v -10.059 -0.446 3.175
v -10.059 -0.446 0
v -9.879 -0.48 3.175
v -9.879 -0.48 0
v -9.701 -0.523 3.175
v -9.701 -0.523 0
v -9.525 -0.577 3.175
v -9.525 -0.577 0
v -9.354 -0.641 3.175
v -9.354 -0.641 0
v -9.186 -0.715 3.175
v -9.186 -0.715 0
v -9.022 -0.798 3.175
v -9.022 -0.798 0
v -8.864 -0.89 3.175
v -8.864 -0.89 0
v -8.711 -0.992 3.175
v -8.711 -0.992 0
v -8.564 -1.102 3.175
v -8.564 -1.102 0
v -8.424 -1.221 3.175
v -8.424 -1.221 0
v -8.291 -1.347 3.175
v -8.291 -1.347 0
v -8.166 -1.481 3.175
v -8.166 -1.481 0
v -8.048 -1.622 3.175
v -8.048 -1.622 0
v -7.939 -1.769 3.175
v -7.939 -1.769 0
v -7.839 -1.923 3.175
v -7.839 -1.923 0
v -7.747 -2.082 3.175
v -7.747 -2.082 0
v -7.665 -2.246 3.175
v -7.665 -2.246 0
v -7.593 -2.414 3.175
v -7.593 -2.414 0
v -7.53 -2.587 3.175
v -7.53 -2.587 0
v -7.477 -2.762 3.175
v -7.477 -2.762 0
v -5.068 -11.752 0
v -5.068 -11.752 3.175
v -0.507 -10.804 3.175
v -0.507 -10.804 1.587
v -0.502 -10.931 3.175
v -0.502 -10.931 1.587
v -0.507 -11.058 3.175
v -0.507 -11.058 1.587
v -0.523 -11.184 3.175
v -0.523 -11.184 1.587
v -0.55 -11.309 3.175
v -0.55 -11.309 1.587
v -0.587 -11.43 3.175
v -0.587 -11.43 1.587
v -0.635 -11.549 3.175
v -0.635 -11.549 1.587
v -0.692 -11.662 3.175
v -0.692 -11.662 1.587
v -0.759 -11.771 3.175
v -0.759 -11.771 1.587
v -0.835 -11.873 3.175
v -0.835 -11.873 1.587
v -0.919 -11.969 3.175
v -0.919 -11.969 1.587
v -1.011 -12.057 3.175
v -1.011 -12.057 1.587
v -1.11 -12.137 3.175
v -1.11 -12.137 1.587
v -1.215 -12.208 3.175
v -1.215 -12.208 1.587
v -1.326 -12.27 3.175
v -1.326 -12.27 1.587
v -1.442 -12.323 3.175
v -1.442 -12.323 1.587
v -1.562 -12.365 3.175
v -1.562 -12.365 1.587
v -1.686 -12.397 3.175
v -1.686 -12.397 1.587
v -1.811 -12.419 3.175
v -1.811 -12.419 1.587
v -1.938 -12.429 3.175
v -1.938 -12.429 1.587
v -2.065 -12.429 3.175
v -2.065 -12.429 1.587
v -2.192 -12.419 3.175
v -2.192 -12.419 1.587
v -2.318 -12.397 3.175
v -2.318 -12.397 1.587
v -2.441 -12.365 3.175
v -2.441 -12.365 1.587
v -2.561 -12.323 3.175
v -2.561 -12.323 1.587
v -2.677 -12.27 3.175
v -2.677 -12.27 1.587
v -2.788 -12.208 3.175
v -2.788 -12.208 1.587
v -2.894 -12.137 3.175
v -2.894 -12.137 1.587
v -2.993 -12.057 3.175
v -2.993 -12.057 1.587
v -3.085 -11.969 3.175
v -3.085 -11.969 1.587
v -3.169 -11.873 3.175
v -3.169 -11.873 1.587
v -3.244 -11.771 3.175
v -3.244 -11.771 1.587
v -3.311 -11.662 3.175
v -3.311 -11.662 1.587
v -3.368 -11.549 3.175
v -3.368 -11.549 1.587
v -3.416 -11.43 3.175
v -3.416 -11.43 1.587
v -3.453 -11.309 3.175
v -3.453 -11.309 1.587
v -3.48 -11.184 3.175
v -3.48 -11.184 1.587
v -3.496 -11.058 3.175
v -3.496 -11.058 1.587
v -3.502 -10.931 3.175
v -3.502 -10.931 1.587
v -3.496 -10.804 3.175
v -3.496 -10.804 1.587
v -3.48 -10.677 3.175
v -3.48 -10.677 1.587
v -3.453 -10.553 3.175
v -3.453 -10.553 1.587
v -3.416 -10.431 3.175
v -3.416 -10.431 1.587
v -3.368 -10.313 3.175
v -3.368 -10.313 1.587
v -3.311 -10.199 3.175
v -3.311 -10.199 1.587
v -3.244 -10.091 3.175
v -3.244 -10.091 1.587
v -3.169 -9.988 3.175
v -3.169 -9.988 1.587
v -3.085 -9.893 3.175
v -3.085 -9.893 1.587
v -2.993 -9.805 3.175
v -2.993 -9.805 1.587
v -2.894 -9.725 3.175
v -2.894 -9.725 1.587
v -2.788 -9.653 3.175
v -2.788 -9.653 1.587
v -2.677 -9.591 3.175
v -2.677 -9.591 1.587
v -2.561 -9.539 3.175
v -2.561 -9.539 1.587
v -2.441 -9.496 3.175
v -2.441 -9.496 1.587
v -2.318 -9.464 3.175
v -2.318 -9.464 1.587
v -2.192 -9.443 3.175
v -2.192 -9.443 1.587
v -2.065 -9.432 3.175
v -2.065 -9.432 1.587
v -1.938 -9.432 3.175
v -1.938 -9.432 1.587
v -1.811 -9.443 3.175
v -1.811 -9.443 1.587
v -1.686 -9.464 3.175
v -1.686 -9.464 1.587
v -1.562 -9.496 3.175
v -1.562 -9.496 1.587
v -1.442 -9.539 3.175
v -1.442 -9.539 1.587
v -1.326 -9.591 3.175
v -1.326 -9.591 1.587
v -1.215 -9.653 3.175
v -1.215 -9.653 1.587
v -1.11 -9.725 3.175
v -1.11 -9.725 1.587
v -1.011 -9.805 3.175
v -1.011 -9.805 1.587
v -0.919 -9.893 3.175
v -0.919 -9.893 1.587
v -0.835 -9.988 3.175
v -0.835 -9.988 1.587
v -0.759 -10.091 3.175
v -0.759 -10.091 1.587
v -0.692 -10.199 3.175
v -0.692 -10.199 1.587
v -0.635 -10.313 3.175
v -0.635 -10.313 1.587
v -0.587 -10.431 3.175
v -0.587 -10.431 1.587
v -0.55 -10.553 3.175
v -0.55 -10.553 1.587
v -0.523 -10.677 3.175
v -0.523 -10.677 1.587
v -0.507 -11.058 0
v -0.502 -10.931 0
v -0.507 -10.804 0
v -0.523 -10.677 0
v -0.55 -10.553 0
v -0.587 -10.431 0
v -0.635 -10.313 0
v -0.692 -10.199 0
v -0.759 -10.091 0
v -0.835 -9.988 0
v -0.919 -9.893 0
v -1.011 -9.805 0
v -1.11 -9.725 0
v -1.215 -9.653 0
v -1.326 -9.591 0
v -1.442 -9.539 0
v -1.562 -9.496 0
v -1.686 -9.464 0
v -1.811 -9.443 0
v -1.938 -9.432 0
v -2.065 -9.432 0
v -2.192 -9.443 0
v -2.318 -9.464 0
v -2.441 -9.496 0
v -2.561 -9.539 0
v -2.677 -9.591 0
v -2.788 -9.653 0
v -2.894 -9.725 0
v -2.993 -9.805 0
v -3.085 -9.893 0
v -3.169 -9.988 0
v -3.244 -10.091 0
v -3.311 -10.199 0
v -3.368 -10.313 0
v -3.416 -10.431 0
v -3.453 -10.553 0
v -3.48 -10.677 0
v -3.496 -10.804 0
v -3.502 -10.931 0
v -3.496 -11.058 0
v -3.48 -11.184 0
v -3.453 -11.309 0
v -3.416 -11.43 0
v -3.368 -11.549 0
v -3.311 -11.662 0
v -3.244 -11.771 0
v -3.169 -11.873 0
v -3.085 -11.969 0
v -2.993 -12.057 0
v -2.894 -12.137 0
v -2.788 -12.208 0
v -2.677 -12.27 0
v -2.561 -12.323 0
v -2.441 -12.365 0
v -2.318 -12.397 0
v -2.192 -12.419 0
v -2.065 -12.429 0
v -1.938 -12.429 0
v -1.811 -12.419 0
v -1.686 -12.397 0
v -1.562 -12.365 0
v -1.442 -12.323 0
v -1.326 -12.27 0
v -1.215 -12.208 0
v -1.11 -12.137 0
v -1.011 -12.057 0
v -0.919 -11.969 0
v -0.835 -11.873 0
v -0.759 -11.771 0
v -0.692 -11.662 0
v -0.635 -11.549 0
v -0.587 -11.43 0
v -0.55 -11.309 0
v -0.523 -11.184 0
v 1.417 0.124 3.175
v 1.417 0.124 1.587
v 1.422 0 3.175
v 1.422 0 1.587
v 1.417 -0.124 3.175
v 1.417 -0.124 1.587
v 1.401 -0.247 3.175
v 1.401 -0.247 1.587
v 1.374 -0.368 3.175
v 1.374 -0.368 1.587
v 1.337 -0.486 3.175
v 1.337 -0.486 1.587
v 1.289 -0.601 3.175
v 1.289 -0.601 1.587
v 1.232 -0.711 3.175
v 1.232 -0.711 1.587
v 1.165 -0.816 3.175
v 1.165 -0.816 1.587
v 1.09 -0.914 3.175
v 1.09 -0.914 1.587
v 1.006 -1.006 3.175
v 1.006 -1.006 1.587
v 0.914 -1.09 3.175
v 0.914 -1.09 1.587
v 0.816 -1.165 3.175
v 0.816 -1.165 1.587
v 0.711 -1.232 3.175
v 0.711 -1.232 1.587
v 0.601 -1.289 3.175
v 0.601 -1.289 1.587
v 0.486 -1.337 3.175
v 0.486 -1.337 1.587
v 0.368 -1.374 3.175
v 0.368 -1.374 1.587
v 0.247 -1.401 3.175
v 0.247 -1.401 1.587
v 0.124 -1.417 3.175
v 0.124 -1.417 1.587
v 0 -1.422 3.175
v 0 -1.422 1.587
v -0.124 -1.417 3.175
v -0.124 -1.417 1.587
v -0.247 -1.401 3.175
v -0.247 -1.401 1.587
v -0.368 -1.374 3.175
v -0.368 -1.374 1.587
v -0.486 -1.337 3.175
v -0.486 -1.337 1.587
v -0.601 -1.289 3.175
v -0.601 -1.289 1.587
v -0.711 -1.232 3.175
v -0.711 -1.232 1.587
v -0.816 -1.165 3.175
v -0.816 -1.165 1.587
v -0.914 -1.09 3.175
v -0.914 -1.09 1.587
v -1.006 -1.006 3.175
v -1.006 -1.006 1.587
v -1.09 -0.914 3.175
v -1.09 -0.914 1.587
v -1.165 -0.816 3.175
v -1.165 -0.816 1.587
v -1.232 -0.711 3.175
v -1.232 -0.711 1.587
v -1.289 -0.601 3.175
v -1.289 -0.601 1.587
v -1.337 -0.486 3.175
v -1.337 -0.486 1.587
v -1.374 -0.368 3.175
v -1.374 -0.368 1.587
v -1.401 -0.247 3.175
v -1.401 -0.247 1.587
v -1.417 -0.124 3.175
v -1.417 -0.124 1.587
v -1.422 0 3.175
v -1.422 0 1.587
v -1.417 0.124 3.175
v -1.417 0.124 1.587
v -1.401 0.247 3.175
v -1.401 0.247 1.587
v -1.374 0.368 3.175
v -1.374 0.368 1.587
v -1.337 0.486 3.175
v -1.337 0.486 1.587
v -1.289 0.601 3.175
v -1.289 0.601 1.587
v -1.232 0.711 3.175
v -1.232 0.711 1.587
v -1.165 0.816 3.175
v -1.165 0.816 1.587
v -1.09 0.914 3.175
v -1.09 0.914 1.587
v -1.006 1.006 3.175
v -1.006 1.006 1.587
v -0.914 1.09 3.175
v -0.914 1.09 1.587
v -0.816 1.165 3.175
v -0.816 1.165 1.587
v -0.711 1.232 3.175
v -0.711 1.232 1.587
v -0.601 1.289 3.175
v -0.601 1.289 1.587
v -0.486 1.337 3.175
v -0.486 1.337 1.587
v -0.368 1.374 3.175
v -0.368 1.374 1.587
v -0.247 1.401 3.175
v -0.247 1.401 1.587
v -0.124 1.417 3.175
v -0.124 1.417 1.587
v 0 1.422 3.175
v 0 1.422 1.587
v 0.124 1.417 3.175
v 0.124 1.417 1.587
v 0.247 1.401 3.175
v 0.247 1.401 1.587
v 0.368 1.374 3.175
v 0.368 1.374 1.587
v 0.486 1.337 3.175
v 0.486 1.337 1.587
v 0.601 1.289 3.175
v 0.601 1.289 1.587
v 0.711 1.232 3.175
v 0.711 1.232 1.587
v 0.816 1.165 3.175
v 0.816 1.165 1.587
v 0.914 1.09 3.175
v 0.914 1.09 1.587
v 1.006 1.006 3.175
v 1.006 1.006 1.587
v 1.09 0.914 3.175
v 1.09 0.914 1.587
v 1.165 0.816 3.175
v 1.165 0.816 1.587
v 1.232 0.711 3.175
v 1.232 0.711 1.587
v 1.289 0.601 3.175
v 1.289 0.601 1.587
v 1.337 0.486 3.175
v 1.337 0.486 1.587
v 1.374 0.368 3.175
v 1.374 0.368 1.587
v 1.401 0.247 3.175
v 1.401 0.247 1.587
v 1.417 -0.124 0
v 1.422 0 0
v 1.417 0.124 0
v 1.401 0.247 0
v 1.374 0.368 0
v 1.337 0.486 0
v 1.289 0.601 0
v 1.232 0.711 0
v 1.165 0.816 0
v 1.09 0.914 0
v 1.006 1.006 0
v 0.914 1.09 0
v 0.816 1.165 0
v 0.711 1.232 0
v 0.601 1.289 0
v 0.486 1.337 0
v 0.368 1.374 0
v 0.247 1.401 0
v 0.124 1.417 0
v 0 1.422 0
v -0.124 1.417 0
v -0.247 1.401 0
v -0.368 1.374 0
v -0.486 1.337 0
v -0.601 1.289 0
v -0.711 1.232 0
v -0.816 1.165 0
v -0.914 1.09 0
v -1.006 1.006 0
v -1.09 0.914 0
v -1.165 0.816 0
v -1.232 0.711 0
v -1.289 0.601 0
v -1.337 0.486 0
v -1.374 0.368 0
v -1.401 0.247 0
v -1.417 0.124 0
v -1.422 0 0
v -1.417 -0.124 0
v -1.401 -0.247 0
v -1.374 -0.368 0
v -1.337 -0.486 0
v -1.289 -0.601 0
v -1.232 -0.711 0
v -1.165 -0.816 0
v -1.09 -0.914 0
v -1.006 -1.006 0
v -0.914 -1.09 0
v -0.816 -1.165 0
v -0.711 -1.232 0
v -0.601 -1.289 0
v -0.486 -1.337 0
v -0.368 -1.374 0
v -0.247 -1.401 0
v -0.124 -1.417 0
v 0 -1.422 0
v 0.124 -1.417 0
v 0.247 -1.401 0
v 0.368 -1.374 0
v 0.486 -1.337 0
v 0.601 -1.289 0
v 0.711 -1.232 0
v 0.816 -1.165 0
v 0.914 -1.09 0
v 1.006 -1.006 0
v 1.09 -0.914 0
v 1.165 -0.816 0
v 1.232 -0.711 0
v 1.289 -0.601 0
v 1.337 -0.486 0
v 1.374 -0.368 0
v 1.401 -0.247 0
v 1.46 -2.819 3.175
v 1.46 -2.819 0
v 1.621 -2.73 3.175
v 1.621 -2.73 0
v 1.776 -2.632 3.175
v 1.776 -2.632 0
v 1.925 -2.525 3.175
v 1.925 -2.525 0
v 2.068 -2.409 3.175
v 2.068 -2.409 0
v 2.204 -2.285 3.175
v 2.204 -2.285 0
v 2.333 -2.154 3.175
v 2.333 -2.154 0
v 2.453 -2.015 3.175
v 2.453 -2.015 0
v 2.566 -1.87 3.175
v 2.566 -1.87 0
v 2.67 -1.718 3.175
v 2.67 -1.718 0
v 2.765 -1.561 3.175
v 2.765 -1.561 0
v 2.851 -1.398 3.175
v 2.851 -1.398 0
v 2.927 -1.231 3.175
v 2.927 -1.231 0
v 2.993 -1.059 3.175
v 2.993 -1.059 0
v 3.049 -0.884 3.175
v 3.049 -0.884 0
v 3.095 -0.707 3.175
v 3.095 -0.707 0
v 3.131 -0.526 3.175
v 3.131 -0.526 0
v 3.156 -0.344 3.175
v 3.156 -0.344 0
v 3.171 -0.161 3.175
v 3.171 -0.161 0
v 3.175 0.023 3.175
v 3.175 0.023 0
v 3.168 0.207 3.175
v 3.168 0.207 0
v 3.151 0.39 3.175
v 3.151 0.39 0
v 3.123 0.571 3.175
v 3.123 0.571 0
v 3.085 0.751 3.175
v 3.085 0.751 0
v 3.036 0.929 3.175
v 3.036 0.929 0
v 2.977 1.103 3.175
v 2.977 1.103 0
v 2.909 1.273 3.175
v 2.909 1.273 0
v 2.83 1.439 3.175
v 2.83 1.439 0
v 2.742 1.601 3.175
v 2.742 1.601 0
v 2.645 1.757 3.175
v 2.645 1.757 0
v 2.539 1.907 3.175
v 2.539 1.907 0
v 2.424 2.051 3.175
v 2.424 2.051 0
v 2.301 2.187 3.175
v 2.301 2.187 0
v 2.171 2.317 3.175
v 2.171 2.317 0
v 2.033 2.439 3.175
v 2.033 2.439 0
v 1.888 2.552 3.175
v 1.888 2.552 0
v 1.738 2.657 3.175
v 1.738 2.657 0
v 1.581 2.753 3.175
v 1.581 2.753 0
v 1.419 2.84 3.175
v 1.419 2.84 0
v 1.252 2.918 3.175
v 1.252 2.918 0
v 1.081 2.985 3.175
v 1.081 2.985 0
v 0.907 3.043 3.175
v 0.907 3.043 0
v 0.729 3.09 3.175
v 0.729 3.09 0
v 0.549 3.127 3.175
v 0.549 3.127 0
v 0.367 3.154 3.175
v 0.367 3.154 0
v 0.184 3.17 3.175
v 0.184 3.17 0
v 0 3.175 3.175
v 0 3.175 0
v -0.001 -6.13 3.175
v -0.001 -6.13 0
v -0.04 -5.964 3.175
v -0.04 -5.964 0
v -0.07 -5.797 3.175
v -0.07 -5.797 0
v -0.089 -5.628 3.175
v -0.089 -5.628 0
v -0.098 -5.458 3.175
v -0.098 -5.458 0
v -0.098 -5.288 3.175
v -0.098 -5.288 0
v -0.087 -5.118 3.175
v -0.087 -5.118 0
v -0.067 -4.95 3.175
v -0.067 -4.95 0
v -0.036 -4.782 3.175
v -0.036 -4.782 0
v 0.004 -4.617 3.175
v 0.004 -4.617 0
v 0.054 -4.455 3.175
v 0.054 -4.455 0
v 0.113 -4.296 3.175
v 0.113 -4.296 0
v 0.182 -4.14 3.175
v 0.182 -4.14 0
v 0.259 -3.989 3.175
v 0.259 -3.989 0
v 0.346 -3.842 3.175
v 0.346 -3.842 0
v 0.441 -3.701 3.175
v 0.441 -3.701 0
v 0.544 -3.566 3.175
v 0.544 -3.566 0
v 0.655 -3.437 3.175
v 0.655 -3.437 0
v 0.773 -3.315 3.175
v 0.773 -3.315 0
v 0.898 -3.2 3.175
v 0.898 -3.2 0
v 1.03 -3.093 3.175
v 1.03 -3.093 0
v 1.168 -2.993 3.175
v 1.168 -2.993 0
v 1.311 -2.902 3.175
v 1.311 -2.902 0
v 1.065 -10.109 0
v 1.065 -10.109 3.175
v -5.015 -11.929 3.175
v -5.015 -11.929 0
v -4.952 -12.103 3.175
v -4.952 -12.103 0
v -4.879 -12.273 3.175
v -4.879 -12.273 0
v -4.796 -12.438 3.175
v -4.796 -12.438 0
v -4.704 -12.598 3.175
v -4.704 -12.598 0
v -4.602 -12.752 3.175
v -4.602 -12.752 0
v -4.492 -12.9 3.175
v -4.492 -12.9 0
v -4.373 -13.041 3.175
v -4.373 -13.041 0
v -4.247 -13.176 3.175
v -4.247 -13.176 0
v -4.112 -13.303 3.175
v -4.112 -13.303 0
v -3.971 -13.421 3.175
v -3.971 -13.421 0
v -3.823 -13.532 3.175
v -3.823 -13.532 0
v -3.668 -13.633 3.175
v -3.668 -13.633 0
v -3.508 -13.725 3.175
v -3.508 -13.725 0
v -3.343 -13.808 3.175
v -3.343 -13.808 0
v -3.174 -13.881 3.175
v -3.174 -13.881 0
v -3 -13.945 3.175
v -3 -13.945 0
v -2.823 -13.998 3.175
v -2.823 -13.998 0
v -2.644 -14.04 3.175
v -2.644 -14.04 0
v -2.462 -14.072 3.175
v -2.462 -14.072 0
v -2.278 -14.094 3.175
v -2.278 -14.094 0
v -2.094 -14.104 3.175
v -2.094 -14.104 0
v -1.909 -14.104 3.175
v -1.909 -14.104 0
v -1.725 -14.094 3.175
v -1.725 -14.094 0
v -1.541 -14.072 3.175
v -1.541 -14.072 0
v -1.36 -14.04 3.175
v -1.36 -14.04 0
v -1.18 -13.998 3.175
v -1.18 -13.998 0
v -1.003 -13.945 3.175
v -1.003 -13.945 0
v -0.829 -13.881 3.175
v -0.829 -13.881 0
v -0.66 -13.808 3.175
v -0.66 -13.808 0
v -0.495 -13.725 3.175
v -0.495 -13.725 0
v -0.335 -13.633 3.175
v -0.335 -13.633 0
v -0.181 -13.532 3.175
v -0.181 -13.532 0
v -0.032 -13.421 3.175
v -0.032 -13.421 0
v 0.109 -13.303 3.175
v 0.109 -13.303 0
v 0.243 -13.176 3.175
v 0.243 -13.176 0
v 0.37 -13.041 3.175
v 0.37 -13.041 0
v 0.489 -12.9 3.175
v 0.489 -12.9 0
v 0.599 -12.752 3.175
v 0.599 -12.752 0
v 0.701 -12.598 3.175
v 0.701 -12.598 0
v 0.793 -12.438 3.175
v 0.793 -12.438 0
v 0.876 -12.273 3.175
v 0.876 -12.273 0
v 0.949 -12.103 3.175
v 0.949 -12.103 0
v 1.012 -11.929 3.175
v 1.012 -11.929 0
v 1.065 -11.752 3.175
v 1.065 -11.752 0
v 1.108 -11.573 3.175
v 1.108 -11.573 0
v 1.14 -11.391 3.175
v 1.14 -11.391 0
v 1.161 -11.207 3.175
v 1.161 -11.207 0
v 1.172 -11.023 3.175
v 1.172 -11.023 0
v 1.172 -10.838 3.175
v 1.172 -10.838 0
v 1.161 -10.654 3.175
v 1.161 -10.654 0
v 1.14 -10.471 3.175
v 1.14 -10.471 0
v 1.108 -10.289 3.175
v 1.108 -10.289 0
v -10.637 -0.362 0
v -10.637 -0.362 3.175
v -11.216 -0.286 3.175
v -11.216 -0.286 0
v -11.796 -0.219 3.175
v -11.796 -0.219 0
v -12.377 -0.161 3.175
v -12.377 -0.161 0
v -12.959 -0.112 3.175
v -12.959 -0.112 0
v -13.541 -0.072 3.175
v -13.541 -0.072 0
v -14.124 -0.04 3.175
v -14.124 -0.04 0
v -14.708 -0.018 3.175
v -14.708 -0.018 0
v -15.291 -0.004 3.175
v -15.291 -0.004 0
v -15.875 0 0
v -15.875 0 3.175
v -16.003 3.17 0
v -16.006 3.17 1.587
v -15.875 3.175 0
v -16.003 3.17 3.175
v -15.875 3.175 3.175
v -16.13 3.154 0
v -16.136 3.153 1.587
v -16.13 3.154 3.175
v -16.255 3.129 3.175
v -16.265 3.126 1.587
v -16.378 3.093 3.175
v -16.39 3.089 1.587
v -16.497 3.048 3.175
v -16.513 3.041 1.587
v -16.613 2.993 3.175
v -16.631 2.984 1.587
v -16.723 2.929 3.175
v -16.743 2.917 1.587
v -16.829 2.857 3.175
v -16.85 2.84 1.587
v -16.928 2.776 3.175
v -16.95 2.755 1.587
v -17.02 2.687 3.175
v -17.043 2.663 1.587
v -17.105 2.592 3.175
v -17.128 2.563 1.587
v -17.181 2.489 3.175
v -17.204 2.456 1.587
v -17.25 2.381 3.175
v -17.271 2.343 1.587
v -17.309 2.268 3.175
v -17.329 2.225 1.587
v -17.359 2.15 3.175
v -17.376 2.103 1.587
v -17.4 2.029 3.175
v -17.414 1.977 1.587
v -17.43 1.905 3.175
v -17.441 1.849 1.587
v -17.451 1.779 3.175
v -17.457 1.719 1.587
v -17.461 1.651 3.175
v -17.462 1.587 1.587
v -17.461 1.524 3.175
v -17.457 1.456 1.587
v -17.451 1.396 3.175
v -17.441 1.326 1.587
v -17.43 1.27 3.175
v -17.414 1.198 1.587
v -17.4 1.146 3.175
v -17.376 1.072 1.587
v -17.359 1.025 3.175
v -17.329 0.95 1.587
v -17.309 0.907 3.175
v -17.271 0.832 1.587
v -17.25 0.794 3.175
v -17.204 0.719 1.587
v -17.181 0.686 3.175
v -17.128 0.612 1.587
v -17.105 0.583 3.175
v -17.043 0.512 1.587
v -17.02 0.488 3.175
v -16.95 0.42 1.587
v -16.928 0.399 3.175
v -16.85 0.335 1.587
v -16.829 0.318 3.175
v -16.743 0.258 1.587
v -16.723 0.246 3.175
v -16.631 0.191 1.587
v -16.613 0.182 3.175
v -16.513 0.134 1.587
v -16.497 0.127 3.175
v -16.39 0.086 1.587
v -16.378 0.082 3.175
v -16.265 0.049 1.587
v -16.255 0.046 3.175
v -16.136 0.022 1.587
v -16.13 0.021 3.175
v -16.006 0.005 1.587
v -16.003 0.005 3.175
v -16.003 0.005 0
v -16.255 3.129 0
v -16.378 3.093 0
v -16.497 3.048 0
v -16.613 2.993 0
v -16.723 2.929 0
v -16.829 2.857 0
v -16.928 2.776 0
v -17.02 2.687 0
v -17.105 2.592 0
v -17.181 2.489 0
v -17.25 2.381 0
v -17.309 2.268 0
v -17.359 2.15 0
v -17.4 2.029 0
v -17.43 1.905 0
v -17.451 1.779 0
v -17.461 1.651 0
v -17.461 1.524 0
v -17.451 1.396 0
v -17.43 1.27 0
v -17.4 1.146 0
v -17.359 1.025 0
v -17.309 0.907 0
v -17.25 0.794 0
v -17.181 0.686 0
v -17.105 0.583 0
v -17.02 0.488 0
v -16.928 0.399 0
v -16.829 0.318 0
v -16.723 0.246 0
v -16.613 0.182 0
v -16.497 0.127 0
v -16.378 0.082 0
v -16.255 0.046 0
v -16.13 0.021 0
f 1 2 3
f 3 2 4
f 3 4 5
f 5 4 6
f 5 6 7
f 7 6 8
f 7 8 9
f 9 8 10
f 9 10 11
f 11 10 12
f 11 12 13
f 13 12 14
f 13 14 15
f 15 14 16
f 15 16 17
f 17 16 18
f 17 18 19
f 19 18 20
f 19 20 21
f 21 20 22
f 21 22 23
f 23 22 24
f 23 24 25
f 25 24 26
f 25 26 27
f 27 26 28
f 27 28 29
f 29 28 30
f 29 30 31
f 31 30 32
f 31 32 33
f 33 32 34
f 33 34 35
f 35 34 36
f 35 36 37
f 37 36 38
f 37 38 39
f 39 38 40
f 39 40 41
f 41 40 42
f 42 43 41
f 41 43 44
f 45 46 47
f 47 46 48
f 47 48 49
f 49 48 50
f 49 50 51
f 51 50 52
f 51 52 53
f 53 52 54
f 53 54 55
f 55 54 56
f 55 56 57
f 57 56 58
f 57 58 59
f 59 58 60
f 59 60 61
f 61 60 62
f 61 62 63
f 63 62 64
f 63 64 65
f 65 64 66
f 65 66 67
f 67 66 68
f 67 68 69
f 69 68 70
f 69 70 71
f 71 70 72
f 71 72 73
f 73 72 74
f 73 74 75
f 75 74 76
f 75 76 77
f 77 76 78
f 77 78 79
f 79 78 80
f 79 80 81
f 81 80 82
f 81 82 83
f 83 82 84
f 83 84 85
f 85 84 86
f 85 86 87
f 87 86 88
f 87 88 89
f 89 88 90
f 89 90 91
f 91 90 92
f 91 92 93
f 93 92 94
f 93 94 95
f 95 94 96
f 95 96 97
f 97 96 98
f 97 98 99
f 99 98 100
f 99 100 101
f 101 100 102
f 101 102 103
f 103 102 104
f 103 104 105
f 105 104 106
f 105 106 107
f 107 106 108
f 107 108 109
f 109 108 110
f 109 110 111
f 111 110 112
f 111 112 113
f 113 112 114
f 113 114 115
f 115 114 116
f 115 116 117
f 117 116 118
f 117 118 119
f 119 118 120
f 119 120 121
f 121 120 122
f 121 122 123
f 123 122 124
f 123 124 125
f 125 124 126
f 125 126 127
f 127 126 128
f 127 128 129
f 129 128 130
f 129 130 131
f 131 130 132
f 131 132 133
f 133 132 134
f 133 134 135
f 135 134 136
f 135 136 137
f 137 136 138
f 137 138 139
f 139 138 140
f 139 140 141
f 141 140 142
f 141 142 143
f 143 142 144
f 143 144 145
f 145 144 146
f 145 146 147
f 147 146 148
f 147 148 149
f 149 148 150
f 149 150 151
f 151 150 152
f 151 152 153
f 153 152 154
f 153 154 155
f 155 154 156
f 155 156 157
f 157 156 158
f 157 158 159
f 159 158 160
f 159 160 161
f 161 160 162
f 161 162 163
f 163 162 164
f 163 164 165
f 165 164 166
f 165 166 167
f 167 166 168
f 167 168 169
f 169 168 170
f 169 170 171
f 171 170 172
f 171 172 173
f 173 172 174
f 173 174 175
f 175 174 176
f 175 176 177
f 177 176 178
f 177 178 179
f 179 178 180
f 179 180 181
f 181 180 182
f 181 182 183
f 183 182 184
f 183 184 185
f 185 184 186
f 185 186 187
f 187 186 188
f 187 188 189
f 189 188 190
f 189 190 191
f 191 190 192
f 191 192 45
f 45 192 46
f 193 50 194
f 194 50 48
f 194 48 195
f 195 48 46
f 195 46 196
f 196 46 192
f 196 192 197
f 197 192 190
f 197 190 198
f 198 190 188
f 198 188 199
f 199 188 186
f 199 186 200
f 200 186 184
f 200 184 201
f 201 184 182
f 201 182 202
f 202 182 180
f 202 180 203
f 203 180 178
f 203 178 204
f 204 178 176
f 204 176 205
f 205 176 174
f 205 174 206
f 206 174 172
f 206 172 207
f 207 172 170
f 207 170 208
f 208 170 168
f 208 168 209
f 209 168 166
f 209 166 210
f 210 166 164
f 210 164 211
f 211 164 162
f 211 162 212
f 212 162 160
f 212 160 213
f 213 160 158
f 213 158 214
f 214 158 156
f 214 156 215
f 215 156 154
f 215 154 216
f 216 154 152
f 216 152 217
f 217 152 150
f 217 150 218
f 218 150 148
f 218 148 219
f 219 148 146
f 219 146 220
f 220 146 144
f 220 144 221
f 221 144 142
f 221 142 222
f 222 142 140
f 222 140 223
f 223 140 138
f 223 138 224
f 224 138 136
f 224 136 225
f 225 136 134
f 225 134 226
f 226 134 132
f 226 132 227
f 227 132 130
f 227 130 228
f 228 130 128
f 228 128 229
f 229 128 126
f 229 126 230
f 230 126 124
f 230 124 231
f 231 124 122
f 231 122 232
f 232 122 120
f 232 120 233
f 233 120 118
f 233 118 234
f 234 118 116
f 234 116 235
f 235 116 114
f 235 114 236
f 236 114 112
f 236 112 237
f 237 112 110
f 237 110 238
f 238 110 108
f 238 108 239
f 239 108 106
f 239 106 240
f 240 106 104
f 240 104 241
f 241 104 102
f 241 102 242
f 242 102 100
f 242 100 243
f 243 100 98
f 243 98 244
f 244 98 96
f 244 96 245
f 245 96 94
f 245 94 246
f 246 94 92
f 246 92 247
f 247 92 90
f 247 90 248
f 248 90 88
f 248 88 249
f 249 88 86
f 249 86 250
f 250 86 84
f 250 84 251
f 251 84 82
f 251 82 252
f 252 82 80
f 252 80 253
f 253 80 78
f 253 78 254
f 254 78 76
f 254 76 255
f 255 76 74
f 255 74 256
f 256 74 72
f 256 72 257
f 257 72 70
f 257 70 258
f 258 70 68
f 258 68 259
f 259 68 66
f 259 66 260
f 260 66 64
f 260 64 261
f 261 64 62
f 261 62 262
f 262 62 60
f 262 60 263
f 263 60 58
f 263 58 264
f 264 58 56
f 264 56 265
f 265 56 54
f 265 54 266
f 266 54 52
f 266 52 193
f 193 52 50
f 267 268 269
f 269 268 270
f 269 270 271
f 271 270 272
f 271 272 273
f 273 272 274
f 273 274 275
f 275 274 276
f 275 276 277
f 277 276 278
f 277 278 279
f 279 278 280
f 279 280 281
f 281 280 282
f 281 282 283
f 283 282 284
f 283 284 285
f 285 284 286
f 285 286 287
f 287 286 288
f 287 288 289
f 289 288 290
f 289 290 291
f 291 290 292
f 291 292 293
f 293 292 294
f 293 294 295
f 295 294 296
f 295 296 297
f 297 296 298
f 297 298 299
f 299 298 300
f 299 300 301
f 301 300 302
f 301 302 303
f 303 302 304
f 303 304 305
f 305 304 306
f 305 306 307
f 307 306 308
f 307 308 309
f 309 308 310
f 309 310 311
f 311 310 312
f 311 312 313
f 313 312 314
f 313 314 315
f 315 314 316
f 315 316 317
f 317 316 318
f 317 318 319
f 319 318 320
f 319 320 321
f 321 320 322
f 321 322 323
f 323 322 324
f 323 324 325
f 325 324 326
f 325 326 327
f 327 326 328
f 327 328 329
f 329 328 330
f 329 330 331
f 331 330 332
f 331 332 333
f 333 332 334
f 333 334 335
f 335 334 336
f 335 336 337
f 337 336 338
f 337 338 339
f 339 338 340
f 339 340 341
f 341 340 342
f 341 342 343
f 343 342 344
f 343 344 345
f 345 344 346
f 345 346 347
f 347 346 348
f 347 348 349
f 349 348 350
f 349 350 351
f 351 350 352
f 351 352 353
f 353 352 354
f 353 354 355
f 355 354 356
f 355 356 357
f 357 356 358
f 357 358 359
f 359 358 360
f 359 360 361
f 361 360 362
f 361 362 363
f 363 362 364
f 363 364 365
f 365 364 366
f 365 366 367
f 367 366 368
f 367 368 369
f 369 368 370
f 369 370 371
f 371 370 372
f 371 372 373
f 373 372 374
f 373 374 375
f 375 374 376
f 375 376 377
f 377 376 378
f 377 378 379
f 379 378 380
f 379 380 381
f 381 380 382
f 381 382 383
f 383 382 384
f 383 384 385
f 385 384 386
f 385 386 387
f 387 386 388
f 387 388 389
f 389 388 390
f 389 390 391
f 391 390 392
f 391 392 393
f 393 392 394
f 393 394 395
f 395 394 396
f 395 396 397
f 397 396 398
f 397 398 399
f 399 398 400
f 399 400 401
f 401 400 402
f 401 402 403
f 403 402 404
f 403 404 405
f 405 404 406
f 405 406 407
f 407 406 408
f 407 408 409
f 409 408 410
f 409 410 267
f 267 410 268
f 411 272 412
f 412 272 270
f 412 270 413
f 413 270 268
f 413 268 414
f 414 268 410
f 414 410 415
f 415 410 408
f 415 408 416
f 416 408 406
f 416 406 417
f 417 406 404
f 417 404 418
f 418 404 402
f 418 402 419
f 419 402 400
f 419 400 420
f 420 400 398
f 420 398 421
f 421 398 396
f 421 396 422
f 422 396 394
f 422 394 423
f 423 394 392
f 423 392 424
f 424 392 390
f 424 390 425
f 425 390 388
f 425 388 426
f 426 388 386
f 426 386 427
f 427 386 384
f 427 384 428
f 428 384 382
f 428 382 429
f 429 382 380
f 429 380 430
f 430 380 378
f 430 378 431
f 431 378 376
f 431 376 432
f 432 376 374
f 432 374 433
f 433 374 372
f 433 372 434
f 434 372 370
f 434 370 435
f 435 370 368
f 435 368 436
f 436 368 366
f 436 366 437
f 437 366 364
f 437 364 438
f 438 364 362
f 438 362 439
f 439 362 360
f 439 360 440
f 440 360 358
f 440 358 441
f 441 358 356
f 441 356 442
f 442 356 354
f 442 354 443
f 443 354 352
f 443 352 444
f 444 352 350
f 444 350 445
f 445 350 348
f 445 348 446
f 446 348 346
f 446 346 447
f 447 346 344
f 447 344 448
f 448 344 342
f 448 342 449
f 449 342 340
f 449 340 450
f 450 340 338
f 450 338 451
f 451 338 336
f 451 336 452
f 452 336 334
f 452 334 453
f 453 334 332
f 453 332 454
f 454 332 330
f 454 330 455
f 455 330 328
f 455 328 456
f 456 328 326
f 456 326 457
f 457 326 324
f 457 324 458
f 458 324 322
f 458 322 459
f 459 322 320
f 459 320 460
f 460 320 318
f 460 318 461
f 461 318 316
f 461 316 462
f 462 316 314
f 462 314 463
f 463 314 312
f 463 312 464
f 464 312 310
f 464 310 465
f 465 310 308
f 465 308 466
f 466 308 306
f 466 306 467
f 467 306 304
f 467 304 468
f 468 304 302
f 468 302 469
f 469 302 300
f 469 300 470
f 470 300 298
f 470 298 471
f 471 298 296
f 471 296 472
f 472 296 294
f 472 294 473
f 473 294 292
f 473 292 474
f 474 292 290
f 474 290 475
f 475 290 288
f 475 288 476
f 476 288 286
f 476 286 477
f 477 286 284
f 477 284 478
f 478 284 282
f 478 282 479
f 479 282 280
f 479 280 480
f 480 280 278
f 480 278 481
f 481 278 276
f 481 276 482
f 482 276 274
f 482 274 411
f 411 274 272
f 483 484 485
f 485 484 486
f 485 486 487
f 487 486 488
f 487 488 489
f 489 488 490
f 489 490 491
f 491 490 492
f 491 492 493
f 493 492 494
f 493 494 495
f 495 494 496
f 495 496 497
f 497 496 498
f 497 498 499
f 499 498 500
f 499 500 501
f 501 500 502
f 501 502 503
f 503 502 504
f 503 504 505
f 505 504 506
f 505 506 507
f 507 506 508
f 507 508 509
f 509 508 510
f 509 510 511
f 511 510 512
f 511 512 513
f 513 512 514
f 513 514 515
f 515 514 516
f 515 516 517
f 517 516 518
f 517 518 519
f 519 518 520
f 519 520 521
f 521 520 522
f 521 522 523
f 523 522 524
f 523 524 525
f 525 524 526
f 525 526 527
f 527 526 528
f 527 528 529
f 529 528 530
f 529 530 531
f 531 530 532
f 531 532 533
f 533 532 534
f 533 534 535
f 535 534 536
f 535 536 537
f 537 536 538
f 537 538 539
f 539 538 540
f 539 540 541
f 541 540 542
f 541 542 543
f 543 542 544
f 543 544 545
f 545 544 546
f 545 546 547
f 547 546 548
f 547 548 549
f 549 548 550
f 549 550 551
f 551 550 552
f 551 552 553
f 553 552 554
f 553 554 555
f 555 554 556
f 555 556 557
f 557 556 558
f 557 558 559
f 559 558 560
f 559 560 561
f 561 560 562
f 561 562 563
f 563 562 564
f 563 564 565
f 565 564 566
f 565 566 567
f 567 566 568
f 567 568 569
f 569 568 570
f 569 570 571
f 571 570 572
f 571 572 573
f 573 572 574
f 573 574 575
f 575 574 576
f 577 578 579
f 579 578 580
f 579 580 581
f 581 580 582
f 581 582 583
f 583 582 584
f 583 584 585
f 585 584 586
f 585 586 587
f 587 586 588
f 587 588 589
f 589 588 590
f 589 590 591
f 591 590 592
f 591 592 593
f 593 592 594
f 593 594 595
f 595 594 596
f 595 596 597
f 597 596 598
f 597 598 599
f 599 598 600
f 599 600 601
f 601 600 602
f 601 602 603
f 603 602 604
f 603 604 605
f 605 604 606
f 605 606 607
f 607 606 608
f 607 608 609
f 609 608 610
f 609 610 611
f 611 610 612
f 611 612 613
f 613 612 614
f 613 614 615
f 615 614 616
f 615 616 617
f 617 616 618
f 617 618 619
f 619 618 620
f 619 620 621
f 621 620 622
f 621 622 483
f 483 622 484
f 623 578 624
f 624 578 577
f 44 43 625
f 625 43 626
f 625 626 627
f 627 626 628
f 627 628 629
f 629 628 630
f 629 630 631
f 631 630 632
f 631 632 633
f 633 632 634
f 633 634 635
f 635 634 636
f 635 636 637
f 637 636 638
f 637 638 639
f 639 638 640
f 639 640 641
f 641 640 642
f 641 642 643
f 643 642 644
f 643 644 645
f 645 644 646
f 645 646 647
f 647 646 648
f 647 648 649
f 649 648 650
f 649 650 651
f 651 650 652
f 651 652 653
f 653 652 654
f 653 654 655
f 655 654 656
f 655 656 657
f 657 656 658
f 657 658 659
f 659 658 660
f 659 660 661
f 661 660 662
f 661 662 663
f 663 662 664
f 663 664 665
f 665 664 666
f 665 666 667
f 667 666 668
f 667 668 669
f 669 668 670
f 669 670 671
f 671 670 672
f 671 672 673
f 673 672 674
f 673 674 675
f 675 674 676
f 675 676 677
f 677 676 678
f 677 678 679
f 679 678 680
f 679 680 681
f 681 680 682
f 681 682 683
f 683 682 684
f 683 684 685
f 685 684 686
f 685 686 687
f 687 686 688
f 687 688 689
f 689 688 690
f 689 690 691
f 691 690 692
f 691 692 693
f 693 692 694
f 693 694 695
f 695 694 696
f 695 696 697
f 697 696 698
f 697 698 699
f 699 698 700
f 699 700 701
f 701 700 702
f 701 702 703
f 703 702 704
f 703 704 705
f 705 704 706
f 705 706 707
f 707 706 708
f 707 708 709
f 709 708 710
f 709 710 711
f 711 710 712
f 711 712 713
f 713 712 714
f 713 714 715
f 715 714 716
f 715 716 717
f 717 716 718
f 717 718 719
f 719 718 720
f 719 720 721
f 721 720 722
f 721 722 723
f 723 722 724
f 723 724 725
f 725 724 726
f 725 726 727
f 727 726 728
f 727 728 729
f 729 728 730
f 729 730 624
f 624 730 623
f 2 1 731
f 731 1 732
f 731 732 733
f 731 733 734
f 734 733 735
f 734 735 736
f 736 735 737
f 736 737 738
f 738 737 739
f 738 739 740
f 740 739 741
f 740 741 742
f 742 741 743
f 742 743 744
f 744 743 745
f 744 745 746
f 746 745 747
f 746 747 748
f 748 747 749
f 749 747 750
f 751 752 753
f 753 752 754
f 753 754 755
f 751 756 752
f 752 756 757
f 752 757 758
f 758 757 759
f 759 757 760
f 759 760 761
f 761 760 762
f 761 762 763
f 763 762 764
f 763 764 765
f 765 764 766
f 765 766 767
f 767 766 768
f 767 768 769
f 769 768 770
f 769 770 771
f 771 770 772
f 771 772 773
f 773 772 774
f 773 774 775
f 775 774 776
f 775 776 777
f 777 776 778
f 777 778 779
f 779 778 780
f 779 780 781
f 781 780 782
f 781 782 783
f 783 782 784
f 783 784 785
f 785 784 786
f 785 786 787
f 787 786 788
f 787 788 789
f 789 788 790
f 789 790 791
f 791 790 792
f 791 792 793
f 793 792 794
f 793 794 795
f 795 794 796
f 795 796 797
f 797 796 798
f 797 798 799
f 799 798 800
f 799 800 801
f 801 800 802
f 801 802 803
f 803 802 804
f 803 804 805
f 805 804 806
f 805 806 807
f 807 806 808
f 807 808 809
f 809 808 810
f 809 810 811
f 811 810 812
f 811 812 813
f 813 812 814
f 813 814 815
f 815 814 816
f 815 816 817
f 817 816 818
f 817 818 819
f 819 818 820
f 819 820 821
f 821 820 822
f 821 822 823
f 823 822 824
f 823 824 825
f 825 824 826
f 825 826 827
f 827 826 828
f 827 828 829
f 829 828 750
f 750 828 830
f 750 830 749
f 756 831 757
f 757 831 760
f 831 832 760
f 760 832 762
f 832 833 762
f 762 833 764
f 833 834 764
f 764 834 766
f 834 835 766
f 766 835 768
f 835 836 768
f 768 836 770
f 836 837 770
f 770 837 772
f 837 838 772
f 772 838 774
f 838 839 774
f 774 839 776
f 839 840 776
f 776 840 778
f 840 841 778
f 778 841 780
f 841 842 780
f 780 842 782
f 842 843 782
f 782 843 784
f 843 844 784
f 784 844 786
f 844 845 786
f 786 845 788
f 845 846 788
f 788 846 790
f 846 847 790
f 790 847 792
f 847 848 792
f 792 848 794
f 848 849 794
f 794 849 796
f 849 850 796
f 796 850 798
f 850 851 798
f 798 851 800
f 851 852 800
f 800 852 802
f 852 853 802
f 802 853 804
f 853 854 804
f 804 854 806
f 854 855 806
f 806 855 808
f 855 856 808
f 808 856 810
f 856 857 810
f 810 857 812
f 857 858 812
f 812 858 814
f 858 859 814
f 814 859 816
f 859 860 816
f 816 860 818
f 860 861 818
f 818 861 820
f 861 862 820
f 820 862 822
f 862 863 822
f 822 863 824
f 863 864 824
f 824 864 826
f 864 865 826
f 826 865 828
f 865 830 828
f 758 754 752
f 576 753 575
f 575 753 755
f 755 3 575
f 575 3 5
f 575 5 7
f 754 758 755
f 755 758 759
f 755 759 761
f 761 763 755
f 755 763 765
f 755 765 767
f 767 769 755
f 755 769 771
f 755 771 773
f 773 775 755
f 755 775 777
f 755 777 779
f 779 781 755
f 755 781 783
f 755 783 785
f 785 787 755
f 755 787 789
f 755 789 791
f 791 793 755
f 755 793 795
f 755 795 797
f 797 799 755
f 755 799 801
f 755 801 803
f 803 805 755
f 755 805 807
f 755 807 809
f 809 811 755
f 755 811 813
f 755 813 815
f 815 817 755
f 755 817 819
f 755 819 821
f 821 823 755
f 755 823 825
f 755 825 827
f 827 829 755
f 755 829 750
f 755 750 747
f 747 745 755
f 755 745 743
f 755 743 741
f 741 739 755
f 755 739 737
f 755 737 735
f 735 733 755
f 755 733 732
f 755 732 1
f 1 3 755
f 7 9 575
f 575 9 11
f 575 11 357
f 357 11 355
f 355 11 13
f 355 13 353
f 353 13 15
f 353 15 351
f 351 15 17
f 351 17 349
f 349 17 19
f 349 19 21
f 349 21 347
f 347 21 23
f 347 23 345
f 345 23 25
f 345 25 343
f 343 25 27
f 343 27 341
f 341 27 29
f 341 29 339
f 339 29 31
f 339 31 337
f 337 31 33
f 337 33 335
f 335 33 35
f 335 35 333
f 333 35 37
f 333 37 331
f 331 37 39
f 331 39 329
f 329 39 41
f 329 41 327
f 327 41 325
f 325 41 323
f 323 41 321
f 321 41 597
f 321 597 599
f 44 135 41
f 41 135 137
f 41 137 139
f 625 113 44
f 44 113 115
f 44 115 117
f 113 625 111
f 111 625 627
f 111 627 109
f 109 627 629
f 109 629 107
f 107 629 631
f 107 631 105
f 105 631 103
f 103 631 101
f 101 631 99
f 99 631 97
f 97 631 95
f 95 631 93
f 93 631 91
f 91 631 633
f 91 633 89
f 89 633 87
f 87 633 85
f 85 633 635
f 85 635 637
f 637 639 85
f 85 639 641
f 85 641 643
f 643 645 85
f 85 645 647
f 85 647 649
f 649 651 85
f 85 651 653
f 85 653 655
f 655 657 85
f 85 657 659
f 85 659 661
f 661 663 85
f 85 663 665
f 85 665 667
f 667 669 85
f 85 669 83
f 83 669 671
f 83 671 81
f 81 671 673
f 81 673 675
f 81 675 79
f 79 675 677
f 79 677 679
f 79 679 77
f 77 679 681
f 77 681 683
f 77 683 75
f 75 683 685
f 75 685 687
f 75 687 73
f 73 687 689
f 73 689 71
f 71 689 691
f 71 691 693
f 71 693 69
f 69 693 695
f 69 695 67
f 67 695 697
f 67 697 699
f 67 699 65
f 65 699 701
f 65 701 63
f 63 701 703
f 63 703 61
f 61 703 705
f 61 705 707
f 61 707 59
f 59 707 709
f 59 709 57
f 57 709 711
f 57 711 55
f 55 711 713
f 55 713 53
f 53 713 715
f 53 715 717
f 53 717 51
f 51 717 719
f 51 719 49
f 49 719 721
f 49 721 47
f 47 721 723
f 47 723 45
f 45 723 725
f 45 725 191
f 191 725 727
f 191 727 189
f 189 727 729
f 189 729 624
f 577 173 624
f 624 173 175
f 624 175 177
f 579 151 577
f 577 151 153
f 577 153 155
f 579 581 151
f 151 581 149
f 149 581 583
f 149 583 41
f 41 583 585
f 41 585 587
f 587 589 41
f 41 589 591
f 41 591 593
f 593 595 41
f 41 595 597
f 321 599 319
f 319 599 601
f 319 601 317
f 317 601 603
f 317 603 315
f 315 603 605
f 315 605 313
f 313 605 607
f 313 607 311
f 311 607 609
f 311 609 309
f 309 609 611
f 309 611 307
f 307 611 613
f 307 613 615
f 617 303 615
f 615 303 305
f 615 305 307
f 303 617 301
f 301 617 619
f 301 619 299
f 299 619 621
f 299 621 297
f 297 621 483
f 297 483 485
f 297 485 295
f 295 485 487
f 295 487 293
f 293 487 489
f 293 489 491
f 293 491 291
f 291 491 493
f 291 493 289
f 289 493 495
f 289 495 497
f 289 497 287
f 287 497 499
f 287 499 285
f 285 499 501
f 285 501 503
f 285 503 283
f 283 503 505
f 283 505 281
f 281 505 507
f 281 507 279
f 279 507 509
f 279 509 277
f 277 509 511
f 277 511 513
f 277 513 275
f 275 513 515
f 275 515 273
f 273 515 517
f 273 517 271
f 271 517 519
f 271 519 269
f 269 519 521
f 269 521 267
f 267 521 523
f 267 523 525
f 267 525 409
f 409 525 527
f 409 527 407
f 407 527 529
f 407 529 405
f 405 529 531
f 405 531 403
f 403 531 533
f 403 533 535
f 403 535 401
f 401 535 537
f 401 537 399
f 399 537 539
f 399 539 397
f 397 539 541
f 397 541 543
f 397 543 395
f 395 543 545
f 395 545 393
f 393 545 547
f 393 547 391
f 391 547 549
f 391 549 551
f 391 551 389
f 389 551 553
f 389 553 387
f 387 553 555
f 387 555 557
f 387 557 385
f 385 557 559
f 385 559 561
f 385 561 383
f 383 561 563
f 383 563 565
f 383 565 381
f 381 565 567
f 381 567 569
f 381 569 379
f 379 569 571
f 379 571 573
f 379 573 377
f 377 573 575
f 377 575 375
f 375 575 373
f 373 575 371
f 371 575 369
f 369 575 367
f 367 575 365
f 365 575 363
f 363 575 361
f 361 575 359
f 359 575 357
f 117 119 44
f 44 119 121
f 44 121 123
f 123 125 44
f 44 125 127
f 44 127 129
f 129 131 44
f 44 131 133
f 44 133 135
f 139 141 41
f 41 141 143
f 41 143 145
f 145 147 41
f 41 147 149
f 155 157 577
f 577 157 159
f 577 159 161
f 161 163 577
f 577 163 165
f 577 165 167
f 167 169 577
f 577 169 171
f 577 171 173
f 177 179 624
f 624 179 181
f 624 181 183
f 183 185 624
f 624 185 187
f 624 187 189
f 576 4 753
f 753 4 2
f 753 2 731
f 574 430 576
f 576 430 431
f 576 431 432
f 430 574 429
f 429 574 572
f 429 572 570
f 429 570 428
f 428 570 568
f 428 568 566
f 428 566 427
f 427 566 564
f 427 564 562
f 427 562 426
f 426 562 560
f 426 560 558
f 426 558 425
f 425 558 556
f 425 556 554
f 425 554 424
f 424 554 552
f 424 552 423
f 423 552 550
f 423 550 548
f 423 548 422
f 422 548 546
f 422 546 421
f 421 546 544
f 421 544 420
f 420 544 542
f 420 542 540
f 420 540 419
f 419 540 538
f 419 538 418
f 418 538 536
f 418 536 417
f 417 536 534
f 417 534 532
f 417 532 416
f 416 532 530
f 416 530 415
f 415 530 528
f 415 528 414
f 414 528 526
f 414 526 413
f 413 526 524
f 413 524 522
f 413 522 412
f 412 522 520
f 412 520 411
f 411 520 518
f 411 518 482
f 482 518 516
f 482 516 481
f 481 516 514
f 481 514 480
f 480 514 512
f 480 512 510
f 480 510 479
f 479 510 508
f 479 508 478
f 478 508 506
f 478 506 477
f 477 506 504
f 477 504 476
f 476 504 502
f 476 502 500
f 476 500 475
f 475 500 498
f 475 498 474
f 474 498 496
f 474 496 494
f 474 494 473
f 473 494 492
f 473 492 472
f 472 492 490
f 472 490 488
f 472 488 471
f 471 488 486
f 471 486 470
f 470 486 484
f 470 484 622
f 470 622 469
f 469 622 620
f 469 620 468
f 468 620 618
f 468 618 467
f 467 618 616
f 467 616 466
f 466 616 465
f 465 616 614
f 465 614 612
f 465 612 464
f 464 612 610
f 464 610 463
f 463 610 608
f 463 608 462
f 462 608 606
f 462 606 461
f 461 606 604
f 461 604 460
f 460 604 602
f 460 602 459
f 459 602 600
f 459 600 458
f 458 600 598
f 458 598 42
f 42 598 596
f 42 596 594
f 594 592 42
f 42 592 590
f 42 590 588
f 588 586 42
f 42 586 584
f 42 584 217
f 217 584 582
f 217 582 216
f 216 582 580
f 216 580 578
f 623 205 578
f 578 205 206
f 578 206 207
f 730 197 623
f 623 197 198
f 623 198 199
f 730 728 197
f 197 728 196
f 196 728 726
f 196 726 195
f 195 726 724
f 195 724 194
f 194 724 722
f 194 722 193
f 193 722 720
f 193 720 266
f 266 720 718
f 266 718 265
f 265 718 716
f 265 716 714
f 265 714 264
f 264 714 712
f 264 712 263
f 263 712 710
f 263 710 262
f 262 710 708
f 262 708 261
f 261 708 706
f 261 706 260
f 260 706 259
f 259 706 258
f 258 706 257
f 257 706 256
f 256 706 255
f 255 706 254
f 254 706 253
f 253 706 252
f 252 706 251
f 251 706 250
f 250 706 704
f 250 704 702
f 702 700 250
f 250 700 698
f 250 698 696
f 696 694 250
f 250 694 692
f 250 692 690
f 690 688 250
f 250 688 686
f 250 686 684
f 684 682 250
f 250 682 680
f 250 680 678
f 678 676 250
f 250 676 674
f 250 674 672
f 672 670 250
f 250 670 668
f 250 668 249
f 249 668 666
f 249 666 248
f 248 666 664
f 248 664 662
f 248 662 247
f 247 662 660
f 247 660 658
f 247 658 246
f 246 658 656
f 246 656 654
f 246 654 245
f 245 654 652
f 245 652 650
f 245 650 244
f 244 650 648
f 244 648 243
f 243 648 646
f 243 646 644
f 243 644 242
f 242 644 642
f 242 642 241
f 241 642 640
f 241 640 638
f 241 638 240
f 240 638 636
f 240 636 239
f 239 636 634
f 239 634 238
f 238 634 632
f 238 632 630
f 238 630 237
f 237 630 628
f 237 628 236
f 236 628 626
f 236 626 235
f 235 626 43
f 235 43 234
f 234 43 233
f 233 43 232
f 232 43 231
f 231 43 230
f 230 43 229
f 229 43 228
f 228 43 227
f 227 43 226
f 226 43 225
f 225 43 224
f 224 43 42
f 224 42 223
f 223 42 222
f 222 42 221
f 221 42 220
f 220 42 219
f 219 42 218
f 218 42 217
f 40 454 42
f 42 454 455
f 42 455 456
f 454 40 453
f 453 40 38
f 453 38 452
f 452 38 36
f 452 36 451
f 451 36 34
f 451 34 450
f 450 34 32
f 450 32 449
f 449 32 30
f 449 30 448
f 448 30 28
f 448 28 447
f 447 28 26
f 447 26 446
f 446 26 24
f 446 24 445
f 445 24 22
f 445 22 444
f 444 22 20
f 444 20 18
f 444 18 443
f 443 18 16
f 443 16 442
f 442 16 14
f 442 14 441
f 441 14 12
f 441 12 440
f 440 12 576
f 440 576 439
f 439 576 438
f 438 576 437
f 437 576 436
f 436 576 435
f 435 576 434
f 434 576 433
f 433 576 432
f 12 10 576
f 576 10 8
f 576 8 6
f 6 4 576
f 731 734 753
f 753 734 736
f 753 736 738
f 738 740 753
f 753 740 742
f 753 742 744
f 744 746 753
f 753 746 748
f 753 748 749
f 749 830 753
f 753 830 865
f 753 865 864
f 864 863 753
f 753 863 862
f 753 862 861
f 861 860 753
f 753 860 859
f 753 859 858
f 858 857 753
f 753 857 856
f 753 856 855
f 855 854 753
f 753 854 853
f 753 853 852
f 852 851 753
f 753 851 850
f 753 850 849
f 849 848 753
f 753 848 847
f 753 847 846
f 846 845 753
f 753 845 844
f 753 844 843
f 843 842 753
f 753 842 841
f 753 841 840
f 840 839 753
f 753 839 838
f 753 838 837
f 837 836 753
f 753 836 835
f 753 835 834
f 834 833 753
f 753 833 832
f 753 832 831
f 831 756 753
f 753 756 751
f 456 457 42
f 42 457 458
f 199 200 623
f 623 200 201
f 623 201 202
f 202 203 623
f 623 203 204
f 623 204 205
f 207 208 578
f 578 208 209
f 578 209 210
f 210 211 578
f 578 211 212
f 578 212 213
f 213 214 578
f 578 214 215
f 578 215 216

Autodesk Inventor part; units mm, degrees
ref_plane "YZ Plane" through (0, 0, 0) normal (1, 0, 0) x (0, 1, 0)
ref_plane "XZ Plane" through (0, 0, 0) normal (0, 1, 0) x (-1, 0, 0)
ref_plane "XY Plane" through (0, 0, 0) normal (0, 0, 1) x (1, 0, 0)
sketch "Sketch1" plane through (0, 0, 0) normal (0, 0, 1) x (1, 0, 0)
  circle A0 centre (0, 0) radius 1.4224
  circle A1 centre (0, 0) radius 3.175
  line L0 (0, 0) -> (-15.875, 0) construction
  circle A2 centre (-2.0016, -10.9307) radius 3.175
  circle A3 centre (-2.0016, -10.9307) radius 5 construction
  circle A4 centre (-2.0016, -10.9307) radius 1.5
  line L1 (0, 0) -> (-2.0016, -10.9307) construction
  line L2 (-2.0016, -10.9307) -> (-3.4771, -10.6606) construction
  line L3 (0, 0) -> (-2.0016, -10.9307) construction
  arc A5 (-5.0684, -10.109) -> (1.0652, -11.7525) centre (-2.0016, -10.9307) ccw
  arc A6 (-1.2212, -2.9308) -> (-15.875, 0) centre (-15.875, -38.1) ccw
  arc A7 (-15.875, 3.175) -> (-15.875, 0) centre (-15.875, 1.5875) ccw
  line L4 (-15.875, 3.175) -> (0, 3.175)
  line L5 (-2.0016, -10.9307) -> (-4.9305, 0) construction
  line L6 (1.0652, -10.109) -> (-1.8637, 0.8218)
  line L7 (-7.9973, -0.8218) -> (-5.0684, -11.7525)
  arc A8 (-5.0684, -11.7525) -> (1.0652, -10.109) centre (-2.0016, -10.9307) ccw
  arc A9 (-1.8637, 0.8218) -> (-7.9973, -0.8218) centre (-4.9305, 0) ccw
  circle A10 centre (6.7469, -0.7937) radius 3.175
  circle A11 centre (6.7469, -0.7937) radius 1.5
  line L8 (7.1178, 2.3595) -> (0.371, 3.1533)
  arc A12 (4.6726, -3.1975) -> (-0.0011, -6.1296) centre (2.7869, -5.3826) ccw
  circle A13 centre (6.7469, -0.7937) radius 5 construction
  point P0 (-5.0684, -10.109)
  point P1 (0, 3.175)
  point P2 (-7.9969, -0.8234)
  point P3 (1.0652, -10.109)
  point P4 (-0.8218, -3.0668)
  point P5 (-2.4653, 2.0008)
  point P6 (0.6312, -3.1116)
  point P7 (1.4598, -2.8195)
  point P8 (-1.4243, -1.0642)
  point P9 (-1.7024, 0.5129)
  point P10 (1.0652, -10.109)
  point P11 (-5.0684, -11.7525)
  dimension "d24" = 3
  dimension "d0" = 2.8448
  dimension "d1" = 6.35
  dimension "d9" = 15.875
  dimension "d22" = 6.35
  dimension "d23" = 10
  dimension "d26" = 11.1125
  dimension "d29" = 3.175
  dimension "d30" = 6.35
  dimension "d31" = 6.35
  dimension "d32" = 3
  dimension "d36" = 10
  dimension "d37" = 105
  dimension "d38" = 4.7625
  dimension "d39" = 6.7469
  dimension "d40" = 0.7937
extrude "Extrusion1" add sketch "Sketch1" along normal blind 3.175 contours A1 L6 A9 | A12 L6 A1 | A1 A9 L4 | L6 A2 L7 A6 A1 | A1 A9 L6 | A1 A6 A9 | A9 A6 A7 L4 | A2
fillet "Fillet1" radius 3.175 1 edges at (-7.9969, -0.8234, 1.5875)
properties part number "Lever" material "Aluminum 6061"
